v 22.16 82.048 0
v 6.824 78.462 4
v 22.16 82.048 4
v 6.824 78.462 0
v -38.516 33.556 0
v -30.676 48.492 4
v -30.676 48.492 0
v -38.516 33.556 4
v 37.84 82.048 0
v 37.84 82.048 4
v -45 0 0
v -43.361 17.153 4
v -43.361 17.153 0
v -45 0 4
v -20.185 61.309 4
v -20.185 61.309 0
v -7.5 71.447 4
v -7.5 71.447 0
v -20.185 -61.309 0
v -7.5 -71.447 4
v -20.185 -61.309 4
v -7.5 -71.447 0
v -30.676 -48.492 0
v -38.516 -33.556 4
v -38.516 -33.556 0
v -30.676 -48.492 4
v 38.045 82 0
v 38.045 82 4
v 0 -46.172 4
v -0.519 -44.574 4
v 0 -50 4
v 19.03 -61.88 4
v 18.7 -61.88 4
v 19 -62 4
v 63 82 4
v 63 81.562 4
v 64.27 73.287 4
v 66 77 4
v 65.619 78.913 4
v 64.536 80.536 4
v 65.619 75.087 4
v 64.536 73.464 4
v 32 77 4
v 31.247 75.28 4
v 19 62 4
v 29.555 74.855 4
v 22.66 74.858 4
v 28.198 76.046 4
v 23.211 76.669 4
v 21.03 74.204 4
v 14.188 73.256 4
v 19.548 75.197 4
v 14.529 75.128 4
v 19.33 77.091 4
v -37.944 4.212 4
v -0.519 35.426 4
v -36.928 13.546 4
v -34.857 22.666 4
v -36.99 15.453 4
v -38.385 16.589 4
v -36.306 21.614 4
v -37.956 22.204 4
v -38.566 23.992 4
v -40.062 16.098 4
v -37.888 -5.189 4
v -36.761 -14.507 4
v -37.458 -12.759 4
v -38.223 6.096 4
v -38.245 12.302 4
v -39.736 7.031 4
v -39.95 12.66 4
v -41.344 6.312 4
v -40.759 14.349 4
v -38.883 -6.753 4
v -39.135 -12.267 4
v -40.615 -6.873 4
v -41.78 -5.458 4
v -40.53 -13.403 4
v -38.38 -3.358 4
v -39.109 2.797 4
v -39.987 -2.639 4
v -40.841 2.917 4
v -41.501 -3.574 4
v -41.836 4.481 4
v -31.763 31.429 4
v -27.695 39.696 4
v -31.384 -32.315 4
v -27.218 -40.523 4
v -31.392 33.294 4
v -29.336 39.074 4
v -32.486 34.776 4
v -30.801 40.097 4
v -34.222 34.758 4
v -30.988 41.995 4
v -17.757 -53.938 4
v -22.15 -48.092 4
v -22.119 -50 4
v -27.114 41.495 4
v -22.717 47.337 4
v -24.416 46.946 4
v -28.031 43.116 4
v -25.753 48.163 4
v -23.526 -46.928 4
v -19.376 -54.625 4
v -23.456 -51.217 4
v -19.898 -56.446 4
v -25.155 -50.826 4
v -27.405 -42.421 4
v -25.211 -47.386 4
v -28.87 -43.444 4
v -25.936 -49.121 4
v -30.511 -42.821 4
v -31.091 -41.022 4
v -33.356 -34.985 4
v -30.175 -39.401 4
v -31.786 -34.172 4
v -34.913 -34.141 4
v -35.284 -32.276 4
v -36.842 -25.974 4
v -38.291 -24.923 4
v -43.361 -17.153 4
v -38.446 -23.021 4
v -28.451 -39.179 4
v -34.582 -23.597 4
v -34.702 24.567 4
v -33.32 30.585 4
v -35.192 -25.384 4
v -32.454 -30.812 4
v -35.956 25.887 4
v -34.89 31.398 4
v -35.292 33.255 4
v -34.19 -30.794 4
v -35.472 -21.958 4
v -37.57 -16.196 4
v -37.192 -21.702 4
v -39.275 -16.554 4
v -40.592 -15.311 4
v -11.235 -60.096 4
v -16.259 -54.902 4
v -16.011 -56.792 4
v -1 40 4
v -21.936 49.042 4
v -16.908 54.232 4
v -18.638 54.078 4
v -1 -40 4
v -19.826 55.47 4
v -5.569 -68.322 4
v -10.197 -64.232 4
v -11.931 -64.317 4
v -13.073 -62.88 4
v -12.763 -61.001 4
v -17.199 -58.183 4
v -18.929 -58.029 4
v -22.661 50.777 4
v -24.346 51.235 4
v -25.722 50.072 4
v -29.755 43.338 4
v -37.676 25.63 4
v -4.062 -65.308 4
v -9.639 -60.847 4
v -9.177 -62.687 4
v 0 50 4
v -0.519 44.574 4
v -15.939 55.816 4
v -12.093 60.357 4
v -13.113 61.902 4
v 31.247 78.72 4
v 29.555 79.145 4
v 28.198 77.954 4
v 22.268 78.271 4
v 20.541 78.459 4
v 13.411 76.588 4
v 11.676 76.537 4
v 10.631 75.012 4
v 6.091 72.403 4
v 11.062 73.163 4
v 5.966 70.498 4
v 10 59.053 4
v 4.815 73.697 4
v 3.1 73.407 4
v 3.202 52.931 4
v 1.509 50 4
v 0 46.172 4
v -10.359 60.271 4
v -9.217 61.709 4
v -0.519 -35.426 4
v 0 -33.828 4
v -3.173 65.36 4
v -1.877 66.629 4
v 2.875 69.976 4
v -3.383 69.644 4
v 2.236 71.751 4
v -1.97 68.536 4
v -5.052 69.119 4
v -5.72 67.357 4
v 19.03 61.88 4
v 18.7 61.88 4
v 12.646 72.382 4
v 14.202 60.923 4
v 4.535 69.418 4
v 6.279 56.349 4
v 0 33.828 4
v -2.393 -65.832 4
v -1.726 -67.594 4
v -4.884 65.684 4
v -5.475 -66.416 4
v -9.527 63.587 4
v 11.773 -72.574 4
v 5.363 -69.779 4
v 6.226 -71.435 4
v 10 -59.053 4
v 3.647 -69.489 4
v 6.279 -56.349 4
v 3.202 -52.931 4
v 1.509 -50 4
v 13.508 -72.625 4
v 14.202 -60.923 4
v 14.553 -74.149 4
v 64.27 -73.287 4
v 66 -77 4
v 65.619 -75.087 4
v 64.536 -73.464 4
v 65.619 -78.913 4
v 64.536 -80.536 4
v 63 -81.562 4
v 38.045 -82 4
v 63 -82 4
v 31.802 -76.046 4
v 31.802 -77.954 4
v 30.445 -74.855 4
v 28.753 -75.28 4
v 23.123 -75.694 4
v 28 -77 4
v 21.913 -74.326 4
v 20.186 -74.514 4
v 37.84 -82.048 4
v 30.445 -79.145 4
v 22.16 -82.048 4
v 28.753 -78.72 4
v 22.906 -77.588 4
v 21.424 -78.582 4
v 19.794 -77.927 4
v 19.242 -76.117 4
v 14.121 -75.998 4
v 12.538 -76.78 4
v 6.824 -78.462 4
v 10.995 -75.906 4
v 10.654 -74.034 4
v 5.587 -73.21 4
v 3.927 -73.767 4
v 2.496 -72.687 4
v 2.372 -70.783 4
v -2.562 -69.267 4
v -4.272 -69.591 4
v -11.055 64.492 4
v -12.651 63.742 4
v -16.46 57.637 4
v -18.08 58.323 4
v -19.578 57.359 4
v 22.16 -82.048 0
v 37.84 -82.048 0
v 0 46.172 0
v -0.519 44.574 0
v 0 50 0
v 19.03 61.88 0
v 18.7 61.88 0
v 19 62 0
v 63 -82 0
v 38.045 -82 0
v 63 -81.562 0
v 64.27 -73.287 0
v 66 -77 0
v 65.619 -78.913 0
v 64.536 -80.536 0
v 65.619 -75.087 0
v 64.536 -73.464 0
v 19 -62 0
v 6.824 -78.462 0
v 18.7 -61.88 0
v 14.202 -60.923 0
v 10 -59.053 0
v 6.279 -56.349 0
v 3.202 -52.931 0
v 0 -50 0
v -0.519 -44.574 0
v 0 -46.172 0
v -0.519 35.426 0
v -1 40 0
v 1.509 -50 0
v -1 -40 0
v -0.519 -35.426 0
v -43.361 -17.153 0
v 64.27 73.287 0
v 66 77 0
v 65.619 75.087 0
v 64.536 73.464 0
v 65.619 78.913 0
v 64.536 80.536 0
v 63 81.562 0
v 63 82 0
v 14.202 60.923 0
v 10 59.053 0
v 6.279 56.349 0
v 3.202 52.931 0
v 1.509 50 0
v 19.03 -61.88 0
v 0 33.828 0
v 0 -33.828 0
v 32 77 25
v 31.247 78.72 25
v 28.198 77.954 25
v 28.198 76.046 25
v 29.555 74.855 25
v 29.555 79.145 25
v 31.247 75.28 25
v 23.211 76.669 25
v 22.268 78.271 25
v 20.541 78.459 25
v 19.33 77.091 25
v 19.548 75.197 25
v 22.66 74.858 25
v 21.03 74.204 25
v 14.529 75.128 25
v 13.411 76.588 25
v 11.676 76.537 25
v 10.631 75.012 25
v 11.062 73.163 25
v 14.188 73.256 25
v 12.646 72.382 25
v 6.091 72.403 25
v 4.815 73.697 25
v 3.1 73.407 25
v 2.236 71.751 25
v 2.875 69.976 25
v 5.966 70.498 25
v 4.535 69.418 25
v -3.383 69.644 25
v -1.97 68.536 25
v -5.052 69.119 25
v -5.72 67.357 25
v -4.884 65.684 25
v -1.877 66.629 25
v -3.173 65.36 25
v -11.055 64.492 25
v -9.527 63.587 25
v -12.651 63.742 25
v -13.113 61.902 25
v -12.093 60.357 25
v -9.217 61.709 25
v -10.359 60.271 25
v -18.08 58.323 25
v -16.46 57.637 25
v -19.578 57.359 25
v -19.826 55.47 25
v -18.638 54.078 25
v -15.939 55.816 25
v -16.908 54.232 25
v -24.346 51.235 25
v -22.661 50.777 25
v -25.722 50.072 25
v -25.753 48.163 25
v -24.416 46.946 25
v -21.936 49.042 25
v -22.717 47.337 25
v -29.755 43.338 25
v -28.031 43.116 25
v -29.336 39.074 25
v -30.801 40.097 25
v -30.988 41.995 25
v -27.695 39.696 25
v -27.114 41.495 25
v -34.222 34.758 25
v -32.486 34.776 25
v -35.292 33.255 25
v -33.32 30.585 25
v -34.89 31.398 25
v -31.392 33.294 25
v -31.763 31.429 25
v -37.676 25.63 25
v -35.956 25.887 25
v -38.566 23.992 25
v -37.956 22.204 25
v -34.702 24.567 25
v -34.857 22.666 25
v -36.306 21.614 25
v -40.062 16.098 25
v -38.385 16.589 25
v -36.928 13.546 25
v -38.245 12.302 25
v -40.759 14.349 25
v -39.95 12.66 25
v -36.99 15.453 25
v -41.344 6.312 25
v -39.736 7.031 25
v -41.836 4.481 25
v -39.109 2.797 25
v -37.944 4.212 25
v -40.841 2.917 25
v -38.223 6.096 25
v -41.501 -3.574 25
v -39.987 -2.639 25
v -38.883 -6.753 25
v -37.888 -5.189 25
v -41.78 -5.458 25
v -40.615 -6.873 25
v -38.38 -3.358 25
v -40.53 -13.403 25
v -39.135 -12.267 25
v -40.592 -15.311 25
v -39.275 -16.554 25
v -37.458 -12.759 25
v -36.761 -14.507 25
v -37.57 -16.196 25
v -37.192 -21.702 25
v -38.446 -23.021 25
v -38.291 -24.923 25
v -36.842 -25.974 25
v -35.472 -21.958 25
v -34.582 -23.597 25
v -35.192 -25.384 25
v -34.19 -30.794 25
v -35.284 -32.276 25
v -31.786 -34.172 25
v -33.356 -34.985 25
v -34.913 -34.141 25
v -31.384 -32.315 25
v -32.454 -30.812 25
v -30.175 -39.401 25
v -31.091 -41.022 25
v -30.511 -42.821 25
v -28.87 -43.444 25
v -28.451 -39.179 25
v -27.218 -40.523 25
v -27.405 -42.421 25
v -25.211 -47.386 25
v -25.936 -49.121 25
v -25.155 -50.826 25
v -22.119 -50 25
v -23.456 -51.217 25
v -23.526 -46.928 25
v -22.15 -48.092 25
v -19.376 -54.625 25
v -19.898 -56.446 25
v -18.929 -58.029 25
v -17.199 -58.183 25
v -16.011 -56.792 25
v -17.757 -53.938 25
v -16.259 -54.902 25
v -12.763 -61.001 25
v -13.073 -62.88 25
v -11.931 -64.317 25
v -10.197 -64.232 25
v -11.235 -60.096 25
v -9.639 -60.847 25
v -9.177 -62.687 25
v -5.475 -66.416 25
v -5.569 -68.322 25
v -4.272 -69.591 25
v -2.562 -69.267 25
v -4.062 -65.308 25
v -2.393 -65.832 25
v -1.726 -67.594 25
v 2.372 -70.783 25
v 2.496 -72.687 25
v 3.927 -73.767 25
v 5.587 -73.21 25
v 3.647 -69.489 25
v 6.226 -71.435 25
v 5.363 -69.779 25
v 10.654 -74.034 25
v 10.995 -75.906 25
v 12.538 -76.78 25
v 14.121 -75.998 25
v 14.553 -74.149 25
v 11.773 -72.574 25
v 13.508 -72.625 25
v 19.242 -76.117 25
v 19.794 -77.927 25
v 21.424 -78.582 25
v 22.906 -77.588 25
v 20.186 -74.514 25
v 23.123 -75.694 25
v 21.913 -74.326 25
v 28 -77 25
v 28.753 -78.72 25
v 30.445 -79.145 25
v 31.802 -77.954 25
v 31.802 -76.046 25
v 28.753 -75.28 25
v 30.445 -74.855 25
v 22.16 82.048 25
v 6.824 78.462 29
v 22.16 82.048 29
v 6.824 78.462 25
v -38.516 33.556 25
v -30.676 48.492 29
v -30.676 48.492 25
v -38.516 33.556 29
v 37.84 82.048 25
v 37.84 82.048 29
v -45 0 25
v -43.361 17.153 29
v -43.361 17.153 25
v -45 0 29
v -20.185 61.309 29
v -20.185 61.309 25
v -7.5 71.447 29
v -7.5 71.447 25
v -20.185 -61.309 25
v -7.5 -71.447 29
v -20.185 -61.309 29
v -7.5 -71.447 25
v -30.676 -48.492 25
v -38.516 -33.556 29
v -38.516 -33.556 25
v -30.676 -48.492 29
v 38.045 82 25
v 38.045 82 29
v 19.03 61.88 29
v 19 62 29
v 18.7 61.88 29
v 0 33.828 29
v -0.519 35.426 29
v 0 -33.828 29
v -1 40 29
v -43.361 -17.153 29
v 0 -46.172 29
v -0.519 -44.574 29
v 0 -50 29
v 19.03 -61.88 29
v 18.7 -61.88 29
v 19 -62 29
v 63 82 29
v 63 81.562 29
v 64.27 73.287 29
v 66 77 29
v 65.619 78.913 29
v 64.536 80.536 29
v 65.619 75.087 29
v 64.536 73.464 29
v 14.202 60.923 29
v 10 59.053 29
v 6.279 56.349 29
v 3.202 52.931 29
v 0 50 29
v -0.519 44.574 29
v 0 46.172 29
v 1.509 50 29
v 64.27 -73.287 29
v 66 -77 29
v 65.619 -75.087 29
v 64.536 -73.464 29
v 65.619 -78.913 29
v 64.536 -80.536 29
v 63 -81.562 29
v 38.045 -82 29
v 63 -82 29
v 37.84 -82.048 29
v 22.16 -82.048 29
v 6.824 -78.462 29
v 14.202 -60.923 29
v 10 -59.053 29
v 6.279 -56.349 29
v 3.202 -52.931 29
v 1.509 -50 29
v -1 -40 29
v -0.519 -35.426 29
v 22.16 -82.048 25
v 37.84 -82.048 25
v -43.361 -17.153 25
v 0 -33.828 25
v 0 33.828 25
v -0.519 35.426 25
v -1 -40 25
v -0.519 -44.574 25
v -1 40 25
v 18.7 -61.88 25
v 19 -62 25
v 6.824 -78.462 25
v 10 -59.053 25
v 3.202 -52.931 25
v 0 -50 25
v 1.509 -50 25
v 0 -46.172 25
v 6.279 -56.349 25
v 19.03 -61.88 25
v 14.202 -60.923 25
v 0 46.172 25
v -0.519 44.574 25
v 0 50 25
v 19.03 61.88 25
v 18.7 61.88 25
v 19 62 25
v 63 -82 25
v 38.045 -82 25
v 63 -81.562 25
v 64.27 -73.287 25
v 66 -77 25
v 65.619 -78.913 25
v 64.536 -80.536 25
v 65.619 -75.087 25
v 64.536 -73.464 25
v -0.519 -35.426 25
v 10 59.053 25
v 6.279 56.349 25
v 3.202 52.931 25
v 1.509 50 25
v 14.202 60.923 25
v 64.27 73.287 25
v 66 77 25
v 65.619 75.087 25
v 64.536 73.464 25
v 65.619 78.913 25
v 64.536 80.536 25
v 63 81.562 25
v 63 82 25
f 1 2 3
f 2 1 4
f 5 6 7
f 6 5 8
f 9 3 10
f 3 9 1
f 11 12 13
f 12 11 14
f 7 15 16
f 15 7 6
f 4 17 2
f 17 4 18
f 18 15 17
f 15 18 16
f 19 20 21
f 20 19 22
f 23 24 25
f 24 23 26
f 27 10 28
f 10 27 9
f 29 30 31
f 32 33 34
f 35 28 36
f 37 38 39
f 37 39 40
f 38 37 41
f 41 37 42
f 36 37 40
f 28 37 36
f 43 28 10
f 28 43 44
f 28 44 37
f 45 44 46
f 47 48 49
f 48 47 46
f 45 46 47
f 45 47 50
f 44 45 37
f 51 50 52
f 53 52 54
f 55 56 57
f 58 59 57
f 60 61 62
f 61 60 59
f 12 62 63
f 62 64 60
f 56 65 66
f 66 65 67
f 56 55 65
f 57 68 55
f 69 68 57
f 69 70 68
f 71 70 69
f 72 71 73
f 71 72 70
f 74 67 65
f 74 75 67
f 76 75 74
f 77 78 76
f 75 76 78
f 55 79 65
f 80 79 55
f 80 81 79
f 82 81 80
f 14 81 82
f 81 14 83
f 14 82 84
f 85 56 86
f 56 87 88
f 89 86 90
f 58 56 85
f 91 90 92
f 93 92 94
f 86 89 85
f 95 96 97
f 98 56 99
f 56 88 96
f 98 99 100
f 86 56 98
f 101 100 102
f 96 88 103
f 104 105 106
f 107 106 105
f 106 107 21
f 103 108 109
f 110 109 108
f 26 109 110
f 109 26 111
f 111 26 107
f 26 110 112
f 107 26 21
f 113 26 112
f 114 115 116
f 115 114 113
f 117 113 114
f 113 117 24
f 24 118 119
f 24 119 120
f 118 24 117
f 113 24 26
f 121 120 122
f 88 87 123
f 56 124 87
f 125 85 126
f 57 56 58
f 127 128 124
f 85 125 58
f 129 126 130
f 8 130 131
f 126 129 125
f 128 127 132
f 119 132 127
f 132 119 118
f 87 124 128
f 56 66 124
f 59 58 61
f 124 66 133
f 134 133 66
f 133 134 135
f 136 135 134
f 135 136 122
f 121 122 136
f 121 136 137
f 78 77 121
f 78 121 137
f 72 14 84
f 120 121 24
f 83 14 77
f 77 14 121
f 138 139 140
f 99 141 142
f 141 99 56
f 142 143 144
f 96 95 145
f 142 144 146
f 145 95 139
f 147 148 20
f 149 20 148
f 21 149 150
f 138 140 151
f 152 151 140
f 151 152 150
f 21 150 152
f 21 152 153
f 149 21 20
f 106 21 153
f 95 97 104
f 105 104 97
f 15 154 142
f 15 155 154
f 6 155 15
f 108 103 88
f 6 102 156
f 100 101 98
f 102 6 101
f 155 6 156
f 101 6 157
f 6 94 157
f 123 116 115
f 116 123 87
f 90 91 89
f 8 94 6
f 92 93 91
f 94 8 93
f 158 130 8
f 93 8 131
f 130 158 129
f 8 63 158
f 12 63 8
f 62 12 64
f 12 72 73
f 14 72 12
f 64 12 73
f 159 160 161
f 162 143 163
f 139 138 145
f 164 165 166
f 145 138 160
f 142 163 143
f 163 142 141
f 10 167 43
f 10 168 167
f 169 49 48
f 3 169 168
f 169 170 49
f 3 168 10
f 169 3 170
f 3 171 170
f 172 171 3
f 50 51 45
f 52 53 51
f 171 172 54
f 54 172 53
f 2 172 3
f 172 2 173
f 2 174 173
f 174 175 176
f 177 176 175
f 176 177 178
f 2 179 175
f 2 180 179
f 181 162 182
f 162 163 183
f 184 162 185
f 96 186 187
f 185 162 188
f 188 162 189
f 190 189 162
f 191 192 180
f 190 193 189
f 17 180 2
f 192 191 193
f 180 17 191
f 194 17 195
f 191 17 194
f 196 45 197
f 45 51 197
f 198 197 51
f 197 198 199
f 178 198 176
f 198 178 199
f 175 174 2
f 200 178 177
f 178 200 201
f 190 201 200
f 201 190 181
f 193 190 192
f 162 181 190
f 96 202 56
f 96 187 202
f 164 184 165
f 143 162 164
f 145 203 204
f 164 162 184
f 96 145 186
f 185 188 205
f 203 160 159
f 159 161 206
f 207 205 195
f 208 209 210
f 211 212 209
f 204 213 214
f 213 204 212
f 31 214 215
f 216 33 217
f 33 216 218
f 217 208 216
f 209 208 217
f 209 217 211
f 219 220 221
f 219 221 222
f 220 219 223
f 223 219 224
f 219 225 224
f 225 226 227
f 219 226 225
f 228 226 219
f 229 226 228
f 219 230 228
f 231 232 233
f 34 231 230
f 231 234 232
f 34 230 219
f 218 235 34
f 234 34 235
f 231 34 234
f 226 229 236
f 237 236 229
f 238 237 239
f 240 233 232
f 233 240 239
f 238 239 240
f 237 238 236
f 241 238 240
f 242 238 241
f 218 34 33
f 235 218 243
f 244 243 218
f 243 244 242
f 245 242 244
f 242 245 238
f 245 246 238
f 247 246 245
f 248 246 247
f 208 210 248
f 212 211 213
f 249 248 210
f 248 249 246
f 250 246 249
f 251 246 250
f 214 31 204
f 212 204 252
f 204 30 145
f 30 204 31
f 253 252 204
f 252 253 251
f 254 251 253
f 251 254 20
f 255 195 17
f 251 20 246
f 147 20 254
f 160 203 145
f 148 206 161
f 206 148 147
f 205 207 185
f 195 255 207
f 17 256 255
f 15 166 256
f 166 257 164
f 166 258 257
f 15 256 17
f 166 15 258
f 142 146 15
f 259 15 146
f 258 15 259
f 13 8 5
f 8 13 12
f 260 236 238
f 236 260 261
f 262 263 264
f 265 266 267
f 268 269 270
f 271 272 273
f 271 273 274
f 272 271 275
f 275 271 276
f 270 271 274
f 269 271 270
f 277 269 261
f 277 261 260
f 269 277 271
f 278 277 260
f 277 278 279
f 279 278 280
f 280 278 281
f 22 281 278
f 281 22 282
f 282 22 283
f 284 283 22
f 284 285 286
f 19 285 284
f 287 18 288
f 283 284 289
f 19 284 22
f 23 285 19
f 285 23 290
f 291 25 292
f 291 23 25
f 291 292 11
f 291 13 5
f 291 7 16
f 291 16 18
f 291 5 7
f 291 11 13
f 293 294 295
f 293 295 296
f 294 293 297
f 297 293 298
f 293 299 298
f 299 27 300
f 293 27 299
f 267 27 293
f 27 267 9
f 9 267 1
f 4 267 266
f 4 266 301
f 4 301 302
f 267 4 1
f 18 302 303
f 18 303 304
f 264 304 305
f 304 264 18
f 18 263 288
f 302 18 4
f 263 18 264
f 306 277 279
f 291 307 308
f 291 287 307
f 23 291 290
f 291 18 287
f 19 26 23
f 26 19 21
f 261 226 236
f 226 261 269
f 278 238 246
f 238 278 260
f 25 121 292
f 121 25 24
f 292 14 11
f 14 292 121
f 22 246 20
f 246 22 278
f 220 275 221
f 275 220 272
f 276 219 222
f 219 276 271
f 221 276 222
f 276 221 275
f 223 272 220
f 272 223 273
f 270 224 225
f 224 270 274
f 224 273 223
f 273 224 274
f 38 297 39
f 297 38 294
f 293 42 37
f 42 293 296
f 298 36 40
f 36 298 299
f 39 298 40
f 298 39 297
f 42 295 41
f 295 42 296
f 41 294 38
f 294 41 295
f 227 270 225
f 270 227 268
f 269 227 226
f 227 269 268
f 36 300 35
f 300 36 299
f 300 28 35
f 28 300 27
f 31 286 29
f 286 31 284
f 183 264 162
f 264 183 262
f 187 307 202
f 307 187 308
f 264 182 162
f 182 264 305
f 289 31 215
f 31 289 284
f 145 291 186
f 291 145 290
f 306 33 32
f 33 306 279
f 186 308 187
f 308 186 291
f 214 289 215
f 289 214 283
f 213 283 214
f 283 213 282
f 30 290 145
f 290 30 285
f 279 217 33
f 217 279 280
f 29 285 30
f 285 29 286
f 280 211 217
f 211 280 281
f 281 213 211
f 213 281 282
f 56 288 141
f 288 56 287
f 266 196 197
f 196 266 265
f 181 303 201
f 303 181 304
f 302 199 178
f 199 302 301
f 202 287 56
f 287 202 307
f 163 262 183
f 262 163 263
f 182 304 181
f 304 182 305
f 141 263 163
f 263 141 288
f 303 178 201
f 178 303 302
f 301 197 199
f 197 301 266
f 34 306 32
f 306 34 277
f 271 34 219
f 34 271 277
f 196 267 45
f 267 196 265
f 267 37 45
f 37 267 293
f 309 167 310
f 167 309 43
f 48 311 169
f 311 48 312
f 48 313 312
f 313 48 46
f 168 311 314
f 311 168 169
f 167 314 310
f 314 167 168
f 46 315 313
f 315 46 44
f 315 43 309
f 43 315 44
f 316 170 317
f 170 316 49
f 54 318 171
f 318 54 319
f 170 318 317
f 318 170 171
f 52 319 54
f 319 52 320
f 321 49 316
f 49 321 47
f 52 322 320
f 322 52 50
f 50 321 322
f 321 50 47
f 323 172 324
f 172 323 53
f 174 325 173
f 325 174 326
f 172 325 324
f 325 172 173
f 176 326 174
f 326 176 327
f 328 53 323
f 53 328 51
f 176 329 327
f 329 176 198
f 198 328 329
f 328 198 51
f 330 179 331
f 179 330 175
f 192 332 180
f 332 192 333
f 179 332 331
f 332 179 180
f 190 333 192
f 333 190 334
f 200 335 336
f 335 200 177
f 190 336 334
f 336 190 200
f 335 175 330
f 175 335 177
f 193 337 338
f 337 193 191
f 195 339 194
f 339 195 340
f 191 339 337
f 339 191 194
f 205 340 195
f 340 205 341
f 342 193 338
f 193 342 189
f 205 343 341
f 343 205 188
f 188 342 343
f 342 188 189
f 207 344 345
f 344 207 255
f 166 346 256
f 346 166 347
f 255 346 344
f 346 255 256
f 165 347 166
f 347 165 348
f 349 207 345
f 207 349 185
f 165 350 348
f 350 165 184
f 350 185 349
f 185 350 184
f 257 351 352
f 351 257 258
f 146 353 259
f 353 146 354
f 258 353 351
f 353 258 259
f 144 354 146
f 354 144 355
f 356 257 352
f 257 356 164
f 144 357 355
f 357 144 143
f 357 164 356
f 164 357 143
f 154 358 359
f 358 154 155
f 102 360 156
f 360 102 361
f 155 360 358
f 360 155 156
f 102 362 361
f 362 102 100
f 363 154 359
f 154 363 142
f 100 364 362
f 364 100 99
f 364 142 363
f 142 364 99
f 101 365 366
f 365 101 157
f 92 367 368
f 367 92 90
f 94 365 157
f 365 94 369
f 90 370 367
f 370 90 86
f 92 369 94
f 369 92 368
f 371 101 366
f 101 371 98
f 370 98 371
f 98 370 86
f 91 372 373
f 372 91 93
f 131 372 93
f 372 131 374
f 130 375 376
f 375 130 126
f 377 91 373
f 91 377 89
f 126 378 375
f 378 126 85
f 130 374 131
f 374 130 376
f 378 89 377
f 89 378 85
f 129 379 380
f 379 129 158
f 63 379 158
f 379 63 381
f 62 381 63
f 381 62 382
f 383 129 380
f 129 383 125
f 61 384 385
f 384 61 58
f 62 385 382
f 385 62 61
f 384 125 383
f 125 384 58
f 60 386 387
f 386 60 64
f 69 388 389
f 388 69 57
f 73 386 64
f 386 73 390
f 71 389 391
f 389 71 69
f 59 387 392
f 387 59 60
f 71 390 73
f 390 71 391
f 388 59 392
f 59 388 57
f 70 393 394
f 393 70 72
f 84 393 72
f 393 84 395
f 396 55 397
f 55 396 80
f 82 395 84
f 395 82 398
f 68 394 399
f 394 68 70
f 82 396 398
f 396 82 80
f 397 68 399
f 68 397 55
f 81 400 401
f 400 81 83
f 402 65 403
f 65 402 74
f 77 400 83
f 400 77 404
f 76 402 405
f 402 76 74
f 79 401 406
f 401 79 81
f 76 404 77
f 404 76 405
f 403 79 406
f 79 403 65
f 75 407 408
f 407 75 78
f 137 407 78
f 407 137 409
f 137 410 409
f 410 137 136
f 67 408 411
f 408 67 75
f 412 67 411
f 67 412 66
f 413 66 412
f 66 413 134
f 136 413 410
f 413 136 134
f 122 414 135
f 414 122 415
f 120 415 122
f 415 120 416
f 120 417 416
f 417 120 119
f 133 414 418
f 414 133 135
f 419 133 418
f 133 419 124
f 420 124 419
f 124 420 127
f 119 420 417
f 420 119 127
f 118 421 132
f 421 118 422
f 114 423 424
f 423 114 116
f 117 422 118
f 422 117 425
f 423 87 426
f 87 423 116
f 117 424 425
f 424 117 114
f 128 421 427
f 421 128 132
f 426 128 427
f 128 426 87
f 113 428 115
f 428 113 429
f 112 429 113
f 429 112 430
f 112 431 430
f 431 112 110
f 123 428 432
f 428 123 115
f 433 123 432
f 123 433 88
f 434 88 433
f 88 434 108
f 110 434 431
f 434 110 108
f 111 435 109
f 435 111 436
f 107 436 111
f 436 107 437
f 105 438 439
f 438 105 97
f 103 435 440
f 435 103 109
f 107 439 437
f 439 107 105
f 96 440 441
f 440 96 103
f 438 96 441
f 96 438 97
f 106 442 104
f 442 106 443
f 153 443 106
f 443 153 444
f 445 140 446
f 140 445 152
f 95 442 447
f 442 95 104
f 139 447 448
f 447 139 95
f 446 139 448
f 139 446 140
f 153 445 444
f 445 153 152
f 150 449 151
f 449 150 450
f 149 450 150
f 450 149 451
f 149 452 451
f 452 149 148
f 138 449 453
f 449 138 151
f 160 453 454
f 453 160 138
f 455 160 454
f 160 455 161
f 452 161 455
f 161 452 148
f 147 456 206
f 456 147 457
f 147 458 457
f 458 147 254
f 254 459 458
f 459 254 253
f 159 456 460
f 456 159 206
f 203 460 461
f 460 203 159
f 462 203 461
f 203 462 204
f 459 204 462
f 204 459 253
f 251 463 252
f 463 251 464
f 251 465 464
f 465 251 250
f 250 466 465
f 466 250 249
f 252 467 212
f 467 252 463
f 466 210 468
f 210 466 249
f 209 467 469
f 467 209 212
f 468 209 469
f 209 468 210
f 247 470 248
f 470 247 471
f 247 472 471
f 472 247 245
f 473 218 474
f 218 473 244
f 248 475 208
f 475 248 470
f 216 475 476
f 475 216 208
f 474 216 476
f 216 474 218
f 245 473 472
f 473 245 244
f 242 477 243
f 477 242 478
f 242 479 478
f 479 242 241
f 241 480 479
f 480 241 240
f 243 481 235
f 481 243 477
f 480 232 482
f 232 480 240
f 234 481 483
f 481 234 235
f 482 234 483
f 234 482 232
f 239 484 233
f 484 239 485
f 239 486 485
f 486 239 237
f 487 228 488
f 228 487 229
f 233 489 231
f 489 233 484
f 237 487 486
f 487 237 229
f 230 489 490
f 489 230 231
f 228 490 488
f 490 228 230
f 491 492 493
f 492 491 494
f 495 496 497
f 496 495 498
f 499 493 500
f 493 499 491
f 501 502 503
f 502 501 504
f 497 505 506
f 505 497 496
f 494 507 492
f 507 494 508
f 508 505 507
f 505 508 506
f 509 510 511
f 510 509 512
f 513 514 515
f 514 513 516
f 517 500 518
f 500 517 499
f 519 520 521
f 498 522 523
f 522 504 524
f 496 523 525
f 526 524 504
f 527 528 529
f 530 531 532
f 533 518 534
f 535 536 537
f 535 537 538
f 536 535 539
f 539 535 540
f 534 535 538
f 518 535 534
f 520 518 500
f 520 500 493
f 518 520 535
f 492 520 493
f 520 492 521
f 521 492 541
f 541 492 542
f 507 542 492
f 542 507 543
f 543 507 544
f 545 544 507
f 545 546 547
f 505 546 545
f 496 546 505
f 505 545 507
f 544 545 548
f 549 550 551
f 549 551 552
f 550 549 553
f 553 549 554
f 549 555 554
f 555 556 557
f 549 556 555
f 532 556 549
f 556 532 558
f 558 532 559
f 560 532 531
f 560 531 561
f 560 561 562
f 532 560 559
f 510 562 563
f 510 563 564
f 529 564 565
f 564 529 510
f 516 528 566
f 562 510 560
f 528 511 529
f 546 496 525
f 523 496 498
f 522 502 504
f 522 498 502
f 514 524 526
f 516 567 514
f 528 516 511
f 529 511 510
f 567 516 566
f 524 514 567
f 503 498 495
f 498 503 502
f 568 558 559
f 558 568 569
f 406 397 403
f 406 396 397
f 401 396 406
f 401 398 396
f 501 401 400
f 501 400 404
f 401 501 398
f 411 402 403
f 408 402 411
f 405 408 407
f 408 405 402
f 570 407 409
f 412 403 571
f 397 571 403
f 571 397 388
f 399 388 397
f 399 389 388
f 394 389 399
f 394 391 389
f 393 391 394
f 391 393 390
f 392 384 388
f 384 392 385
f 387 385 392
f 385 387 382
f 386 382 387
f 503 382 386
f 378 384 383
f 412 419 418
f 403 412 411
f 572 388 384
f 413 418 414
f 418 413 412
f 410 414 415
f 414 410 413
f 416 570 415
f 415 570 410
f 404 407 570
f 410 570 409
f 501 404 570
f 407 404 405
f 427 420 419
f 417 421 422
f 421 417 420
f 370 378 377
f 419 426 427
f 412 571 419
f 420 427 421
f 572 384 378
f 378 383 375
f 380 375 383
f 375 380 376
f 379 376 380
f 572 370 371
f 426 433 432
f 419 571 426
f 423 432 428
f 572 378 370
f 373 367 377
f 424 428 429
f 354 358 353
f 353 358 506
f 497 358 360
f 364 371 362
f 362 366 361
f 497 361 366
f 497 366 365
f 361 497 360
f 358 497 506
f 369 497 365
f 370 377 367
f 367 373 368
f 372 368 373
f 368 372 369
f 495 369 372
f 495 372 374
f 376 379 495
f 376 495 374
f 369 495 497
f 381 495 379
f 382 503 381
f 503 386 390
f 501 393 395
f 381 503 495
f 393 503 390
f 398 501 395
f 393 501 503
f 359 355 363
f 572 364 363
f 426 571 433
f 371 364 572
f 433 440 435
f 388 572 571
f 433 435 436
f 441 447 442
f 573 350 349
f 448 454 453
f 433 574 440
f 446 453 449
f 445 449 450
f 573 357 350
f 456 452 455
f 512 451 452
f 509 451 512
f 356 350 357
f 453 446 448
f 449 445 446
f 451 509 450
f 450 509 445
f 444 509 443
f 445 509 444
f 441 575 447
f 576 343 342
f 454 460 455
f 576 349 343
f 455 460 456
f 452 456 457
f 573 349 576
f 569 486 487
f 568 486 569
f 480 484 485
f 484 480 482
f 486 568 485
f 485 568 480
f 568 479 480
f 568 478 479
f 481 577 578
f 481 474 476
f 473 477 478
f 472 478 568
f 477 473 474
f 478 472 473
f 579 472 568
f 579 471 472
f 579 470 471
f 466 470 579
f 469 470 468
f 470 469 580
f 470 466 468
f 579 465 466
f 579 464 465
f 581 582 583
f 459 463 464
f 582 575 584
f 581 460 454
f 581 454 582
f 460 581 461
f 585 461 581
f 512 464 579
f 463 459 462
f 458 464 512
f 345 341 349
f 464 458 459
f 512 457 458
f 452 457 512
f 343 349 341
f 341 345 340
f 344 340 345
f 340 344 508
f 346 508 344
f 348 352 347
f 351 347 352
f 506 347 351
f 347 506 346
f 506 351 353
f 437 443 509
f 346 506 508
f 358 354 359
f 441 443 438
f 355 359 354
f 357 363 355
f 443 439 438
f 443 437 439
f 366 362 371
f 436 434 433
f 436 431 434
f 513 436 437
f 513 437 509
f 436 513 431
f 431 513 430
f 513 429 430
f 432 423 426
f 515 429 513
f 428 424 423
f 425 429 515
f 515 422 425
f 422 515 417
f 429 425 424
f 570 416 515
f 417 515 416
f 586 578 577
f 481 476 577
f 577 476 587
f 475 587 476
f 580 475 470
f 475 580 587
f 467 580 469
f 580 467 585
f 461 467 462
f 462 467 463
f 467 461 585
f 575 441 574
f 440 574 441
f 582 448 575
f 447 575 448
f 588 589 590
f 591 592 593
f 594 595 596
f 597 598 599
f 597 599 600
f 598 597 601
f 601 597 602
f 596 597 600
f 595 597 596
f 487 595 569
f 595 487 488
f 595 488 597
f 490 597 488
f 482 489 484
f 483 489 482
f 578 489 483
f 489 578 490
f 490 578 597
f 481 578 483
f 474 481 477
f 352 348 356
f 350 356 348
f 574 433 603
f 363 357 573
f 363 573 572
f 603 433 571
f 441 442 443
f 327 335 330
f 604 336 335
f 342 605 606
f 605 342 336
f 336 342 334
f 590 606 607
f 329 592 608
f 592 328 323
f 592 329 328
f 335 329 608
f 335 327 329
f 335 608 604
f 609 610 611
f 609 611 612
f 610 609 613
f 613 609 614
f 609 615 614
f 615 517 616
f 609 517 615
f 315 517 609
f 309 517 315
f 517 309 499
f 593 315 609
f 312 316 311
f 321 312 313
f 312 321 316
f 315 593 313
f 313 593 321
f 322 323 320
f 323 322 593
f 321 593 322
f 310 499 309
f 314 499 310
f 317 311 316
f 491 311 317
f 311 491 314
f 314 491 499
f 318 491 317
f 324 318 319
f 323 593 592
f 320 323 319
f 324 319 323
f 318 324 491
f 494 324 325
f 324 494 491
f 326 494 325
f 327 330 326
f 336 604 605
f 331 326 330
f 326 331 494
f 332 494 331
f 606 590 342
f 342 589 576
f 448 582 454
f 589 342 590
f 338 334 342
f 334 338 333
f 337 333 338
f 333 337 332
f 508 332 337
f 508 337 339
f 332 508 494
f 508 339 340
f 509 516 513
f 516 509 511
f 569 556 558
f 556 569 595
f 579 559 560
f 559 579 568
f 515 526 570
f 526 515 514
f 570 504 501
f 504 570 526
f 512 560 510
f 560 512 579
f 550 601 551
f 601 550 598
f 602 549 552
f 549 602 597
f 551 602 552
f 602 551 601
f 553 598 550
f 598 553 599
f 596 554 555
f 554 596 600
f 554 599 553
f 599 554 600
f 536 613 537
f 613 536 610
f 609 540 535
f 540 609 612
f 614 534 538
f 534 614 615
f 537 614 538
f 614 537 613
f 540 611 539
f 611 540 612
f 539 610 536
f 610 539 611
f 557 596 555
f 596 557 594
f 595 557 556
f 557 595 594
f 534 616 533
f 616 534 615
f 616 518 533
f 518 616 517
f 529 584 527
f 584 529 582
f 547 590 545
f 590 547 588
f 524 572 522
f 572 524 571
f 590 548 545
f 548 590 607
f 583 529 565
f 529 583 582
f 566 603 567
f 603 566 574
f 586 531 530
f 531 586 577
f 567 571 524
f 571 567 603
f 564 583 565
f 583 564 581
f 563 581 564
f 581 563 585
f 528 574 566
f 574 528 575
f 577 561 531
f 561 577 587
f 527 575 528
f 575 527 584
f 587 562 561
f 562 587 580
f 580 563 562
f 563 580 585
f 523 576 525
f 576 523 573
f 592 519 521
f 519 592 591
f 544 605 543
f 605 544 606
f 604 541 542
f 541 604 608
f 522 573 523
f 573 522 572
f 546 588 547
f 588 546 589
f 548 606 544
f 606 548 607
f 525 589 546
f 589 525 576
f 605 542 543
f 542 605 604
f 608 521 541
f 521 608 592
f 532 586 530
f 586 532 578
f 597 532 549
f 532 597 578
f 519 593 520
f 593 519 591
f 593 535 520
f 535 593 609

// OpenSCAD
// offset original
showOffsetOriginal = false;
if(showOffsetOriginal)
{
	translate([0, -200, 0])
	color("yellow")
	import("C:\\home\\world\\versioning\\beto-land-world\\3d-printing\\star-trek\\jordi-laforge\\visor\\MrJohn\\Geordi_La_Forges_Visor_Star_Trek\\VISOR_V3_Fitted_Unsupported.stl");	
}

// overlay of original visor
showOverlay = false;
if(showOverlay)
{
	color("yellow")
	import("C:\\home\\world\\versioning\\beto-land-world\\3d-printing\\star-trek\\jordi-laforge\\visor\\MrJohn\\Geordi_La_Forges_Visor_Star_Trek\\VISOR_V3_Fitted_Unsupported.stl");
}

height = 4;

centerGap = 21;

ovalScale = [1, 1.1, 1];

union()
{
	translate([30, 0, 0])
	geordilaForgeVisor();
	
//	translate([-25, 0, 0])
//	cube([50, 50, 50]);	
}


module centerParts()
{
	outerIconCount = 25;
	
    for ( i = [0 : outerIconCount] )
    {
        rotate( i * 180 / (outerIconCount), [0, 0, 1])
        translate([0, 70, height - 0.1])
        cylinder(r=2, h=centerGap + 0.2);
    }
}

module geordilaForgeVisor()
{
	union()
	{
		horizontalPlane();
		
		scale(ovalScale)
		centerParts();
		
		zTranslate = height + centerGap;
		translate([0, 0, zTranslate])
		horizontalPlane();
	}
}

module horizontalPlane()
{
	difference()
	{
		horizontalPlaneUnion();
		
		// large rectagngle cutout
		xLength = 105;
		xTranslate = -30;
		yLength = 100;
		yTranslate = -yLength / 2.0;
		translate([xTranslate, yTranslate, -0.1])		
		cube([xLength, yLength, height+0.2]);
		
		// cut out section 1
		cu1Radius = 22;
		cu1TranslateX = -9;
		cu1TranslateY = -40;
		translate([cu1TranslateX, cu1TranslateY, -0.1])
		cylinder(r=cu1Radius, h=height+0.2);
		
		translate([cu1TranslateX, -cu1TranslateY, -0.1])
		cylinder(r=cu1Radius, h=height+0.2);

		// cut out section 2
		cu2LengthX = 70;		
		cu2RotateZ = -14;
		cu2TranslateX = -11;
		cu2TranslateZ = -62;
		translate([cu2TranslateX, cu2TranslateZ, -0.1])
		rotate([0, 0, cu2RotateZ])
		cube([cu2LengthX, 40, height+0.11]);


		cu2bTranslateZ = (height) + 0.1;
		color("green")
		translate([cu2TranslateX, -cu2TranslateZ, cu2bTranslateZ])
		rotate([180, 0, -cu2RotateZ])
		cube([cu2LengthX, 40, height+0.12]);		
	}
}

module horizontalPlaneUnion()
{
	union()
	{
		scale(ovalScale)
		cylinder(r=75, h=height);
		
		// rounded ends
		u1TranslateX = 31;
		u1TranslateY = -77;
		translate([u1TranslateX, u1TranslateY, 0])
		cylinder(r=5, h=height);
		
		translate([u1TranslateX, -u1TranslateY, 0])
		cylinder(r=5, h=height);
		
		// fillers for the main oval and the rounded ends
		u2TranslateX = 3;
		u2TranslateY = -82;
		u2LengthX = 30;
		u2LengthY = 10;
		translate([u2TranslateX, u2TranslateY,0])
		cube([u2LengthX, u2LengthY, height]);
		
		color("blue")
		translate([u2TranslateX, -u2TranslateY-10,0])
		cube([u2LengthX, u2LengthY, height]);
	}		
}
	
